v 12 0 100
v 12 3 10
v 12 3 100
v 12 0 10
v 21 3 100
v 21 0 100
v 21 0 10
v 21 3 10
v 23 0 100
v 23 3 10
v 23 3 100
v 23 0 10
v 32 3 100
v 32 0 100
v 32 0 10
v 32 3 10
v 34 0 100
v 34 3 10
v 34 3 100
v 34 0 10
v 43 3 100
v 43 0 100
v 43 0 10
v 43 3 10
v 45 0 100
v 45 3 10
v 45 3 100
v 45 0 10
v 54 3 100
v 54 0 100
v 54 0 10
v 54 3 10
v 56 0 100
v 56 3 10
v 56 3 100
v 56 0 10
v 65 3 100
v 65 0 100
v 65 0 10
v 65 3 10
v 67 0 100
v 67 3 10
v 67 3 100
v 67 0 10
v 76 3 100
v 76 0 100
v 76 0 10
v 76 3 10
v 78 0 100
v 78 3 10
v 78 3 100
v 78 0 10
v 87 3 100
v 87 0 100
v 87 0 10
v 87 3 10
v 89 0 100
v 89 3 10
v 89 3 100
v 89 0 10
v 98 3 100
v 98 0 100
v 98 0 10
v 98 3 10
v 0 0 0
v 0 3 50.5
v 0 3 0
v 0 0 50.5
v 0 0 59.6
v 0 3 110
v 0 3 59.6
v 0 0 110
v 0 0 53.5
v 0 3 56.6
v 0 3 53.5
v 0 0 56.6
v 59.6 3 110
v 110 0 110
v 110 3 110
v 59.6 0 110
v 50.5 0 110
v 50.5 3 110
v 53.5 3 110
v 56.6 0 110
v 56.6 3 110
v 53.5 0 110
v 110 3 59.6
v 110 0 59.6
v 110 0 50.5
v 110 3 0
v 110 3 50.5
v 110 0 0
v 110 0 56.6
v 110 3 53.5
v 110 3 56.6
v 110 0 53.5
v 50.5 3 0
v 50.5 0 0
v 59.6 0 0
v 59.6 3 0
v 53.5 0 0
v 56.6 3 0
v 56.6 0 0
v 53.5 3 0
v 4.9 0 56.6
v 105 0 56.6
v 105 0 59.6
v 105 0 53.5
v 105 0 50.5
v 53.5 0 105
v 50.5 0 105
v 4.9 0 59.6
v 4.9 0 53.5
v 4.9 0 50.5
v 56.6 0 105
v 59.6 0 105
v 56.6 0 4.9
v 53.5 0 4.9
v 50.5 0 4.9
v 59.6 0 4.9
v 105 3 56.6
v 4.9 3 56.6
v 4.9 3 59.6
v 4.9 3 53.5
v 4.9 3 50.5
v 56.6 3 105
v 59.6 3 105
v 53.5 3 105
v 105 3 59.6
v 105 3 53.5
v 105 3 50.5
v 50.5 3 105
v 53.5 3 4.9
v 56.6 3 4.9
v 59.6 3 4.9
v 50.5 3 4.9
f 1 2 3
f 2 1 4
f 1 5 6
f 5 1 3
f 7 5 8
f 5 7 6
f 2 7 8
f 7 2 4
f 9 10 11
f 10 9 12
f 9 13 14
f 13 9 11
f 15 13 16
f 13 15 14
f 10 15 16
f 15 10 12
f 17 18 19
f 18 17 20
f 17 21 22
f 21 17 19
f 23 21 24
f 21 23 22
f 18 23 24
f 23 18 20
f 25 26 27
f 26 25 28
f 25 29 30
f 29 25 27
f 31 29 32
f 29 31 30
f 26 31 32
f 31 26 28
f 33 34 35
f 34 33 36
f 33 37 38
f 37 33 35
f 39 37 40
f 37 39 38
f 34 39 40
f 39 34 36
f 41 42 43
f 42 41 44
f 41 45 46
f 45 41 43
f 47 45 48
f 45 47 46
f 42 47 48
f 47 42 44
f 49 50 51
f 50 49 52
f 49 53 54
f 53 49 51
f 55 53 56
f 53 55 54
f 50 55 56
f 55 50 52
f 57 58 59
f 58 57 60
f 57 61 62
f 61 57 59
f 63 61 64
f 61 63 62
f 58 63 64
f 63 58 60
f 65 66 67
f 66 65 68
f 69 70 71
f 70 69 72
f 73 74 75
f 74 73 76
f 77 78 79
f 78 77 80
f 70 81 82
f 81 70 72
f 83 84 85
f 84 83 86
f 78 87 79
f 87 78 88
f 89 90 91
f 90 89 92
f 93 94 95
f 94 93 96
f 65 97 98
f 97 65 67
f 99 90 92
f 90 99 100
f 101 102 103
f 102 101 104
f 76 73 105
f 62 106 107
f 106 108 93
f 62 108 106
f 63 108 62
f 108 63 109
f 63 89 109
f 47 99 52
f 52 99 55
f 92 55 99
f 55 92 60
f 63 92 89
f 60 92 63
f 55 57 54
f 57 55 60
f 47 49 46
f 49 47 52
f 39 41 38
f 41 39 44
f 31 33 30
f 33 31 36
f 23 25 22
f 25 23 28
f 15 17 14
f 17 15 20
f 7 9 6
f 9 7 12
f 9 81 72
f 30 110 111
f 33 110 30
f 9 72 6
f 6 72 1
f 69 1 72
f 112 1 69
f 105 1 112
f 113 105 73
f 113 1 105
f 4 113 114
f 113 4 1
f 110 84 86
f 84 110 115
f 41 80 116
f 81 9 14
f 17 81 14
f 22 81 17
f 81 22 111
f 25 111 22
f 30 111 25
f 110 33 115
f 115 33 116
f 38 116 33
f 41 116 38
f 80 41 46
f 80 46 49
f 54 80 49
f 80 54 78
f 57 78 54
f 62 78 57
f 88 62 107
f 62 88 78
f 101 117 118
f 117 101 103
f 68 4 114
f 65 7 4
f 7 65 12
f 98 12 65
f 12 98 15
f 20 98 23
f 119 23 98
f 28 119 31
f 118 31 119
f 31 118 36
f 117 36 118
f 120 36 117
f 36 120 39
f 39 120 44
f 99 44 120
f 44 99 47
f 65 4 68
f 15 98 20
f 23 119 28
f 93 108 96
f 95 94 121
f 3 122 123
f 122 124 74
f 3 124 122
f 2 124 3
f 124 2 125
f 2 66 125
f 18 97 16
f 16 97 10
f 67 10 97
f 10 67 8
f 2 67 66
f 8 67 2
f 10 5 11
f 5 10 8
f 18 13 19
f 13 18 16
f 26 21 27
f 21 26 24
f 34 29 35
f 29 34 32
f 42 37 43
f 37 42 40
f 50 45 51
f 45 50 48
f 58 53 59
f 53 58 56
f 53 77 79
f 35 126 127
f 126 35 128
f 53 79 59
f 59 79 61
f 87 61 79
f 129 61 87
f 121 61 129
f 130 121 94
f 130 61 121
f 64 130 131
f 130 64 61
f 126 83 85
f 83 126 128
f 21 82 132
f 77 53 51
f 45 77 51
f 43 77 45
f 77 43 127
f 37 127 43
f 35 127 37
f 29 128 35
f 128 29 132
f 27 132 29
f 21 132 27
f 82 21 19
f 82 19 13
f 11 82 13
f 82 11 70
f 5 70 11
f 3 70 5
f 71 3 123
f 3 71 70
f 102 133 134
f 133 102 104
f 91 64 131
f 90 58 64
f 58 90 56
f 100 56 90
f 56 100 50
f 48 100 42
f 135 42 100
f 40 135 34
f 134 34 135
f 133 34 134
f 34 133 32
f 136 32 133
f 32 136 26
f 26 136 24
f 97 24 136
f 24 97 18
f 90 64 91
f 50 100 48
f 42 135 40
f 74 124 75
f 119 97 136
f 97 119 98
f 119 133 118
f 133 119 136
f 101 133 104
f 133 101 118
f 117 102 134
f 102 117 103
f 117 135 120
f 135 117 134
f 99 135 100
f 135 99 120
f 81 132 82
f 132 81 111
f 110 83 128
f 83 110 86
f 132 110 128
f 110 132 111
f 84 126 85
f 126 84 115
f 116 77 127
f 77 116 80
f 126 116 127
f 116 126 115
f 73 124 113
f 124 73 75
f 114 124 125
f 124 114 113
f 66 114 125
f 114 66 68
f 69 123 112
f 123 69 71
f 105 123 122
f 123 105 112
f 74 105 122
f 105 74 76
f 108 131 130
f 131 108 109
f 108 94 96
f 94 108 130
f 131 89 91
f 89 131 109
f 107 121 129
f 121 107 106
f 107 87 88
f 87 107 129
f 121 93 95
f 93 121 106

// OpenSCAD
// ============================================================
// Hamster Habitat — Kafes Paneli (ızgara, notchlu)
// Çubuk: 2mm | Aralık: 9mm (maks 10mm güvenli)
// ============================================================
$fn = 32;

module panel_kafes() {
  bar_w  = 2;   // çubuk kalınlığı mm
  gap    = 9;   // aralık (max 10mm — hamster geçemesin)
  margin = 10;  // kenardan iç boşluk
  n1 = 50.5;    // 1. notch baslangici — ikili kume, 3mm aralikli, merkez 55mm
  n2 = 56.6;    // 2. notch baslangici

  color("lightcoral", 0.9)
  difference() {
    cube([110, 3, 110]);
    // alt kenar — 2 notch
    translate([n1, -0.1,  -0.1]) cube([3, 3.2, 5]);
    translate([n2, -0.1,  -0.1]) cube([3, 3.2, 5]);
    // ust kenar — 2 notch
    translate([n1, -0.1,   105]) cube([3, 3.2, 5]);
    translate([n2, -0.1,   105]) cube([3, 3.2, 5]);
    // sol kenar — 2 notch
    translate([ -0.1, -0.1, n1]) cube([5, 3.2, 3]);
    translate([ -0.1, -0.1, n2]) cube([5, 3.2, 3]);
    // sag kenar — 2 notch
    translate([  105, -0.1, n1]) cube([5, 3.2, 3]);
    translate([  105, -0.1, n2]) cube([5, 3.2, 3]);
    // Parmakl ık boşlukları — dikey (Z boyunca)
    for(i = [0:7])
      translate([margin + bar_w + i*(bar_w + gap), -0.1, margin])
        cube([gap, 3.2, 110 - 2*margin]);
  }
}

panel_kafes();
